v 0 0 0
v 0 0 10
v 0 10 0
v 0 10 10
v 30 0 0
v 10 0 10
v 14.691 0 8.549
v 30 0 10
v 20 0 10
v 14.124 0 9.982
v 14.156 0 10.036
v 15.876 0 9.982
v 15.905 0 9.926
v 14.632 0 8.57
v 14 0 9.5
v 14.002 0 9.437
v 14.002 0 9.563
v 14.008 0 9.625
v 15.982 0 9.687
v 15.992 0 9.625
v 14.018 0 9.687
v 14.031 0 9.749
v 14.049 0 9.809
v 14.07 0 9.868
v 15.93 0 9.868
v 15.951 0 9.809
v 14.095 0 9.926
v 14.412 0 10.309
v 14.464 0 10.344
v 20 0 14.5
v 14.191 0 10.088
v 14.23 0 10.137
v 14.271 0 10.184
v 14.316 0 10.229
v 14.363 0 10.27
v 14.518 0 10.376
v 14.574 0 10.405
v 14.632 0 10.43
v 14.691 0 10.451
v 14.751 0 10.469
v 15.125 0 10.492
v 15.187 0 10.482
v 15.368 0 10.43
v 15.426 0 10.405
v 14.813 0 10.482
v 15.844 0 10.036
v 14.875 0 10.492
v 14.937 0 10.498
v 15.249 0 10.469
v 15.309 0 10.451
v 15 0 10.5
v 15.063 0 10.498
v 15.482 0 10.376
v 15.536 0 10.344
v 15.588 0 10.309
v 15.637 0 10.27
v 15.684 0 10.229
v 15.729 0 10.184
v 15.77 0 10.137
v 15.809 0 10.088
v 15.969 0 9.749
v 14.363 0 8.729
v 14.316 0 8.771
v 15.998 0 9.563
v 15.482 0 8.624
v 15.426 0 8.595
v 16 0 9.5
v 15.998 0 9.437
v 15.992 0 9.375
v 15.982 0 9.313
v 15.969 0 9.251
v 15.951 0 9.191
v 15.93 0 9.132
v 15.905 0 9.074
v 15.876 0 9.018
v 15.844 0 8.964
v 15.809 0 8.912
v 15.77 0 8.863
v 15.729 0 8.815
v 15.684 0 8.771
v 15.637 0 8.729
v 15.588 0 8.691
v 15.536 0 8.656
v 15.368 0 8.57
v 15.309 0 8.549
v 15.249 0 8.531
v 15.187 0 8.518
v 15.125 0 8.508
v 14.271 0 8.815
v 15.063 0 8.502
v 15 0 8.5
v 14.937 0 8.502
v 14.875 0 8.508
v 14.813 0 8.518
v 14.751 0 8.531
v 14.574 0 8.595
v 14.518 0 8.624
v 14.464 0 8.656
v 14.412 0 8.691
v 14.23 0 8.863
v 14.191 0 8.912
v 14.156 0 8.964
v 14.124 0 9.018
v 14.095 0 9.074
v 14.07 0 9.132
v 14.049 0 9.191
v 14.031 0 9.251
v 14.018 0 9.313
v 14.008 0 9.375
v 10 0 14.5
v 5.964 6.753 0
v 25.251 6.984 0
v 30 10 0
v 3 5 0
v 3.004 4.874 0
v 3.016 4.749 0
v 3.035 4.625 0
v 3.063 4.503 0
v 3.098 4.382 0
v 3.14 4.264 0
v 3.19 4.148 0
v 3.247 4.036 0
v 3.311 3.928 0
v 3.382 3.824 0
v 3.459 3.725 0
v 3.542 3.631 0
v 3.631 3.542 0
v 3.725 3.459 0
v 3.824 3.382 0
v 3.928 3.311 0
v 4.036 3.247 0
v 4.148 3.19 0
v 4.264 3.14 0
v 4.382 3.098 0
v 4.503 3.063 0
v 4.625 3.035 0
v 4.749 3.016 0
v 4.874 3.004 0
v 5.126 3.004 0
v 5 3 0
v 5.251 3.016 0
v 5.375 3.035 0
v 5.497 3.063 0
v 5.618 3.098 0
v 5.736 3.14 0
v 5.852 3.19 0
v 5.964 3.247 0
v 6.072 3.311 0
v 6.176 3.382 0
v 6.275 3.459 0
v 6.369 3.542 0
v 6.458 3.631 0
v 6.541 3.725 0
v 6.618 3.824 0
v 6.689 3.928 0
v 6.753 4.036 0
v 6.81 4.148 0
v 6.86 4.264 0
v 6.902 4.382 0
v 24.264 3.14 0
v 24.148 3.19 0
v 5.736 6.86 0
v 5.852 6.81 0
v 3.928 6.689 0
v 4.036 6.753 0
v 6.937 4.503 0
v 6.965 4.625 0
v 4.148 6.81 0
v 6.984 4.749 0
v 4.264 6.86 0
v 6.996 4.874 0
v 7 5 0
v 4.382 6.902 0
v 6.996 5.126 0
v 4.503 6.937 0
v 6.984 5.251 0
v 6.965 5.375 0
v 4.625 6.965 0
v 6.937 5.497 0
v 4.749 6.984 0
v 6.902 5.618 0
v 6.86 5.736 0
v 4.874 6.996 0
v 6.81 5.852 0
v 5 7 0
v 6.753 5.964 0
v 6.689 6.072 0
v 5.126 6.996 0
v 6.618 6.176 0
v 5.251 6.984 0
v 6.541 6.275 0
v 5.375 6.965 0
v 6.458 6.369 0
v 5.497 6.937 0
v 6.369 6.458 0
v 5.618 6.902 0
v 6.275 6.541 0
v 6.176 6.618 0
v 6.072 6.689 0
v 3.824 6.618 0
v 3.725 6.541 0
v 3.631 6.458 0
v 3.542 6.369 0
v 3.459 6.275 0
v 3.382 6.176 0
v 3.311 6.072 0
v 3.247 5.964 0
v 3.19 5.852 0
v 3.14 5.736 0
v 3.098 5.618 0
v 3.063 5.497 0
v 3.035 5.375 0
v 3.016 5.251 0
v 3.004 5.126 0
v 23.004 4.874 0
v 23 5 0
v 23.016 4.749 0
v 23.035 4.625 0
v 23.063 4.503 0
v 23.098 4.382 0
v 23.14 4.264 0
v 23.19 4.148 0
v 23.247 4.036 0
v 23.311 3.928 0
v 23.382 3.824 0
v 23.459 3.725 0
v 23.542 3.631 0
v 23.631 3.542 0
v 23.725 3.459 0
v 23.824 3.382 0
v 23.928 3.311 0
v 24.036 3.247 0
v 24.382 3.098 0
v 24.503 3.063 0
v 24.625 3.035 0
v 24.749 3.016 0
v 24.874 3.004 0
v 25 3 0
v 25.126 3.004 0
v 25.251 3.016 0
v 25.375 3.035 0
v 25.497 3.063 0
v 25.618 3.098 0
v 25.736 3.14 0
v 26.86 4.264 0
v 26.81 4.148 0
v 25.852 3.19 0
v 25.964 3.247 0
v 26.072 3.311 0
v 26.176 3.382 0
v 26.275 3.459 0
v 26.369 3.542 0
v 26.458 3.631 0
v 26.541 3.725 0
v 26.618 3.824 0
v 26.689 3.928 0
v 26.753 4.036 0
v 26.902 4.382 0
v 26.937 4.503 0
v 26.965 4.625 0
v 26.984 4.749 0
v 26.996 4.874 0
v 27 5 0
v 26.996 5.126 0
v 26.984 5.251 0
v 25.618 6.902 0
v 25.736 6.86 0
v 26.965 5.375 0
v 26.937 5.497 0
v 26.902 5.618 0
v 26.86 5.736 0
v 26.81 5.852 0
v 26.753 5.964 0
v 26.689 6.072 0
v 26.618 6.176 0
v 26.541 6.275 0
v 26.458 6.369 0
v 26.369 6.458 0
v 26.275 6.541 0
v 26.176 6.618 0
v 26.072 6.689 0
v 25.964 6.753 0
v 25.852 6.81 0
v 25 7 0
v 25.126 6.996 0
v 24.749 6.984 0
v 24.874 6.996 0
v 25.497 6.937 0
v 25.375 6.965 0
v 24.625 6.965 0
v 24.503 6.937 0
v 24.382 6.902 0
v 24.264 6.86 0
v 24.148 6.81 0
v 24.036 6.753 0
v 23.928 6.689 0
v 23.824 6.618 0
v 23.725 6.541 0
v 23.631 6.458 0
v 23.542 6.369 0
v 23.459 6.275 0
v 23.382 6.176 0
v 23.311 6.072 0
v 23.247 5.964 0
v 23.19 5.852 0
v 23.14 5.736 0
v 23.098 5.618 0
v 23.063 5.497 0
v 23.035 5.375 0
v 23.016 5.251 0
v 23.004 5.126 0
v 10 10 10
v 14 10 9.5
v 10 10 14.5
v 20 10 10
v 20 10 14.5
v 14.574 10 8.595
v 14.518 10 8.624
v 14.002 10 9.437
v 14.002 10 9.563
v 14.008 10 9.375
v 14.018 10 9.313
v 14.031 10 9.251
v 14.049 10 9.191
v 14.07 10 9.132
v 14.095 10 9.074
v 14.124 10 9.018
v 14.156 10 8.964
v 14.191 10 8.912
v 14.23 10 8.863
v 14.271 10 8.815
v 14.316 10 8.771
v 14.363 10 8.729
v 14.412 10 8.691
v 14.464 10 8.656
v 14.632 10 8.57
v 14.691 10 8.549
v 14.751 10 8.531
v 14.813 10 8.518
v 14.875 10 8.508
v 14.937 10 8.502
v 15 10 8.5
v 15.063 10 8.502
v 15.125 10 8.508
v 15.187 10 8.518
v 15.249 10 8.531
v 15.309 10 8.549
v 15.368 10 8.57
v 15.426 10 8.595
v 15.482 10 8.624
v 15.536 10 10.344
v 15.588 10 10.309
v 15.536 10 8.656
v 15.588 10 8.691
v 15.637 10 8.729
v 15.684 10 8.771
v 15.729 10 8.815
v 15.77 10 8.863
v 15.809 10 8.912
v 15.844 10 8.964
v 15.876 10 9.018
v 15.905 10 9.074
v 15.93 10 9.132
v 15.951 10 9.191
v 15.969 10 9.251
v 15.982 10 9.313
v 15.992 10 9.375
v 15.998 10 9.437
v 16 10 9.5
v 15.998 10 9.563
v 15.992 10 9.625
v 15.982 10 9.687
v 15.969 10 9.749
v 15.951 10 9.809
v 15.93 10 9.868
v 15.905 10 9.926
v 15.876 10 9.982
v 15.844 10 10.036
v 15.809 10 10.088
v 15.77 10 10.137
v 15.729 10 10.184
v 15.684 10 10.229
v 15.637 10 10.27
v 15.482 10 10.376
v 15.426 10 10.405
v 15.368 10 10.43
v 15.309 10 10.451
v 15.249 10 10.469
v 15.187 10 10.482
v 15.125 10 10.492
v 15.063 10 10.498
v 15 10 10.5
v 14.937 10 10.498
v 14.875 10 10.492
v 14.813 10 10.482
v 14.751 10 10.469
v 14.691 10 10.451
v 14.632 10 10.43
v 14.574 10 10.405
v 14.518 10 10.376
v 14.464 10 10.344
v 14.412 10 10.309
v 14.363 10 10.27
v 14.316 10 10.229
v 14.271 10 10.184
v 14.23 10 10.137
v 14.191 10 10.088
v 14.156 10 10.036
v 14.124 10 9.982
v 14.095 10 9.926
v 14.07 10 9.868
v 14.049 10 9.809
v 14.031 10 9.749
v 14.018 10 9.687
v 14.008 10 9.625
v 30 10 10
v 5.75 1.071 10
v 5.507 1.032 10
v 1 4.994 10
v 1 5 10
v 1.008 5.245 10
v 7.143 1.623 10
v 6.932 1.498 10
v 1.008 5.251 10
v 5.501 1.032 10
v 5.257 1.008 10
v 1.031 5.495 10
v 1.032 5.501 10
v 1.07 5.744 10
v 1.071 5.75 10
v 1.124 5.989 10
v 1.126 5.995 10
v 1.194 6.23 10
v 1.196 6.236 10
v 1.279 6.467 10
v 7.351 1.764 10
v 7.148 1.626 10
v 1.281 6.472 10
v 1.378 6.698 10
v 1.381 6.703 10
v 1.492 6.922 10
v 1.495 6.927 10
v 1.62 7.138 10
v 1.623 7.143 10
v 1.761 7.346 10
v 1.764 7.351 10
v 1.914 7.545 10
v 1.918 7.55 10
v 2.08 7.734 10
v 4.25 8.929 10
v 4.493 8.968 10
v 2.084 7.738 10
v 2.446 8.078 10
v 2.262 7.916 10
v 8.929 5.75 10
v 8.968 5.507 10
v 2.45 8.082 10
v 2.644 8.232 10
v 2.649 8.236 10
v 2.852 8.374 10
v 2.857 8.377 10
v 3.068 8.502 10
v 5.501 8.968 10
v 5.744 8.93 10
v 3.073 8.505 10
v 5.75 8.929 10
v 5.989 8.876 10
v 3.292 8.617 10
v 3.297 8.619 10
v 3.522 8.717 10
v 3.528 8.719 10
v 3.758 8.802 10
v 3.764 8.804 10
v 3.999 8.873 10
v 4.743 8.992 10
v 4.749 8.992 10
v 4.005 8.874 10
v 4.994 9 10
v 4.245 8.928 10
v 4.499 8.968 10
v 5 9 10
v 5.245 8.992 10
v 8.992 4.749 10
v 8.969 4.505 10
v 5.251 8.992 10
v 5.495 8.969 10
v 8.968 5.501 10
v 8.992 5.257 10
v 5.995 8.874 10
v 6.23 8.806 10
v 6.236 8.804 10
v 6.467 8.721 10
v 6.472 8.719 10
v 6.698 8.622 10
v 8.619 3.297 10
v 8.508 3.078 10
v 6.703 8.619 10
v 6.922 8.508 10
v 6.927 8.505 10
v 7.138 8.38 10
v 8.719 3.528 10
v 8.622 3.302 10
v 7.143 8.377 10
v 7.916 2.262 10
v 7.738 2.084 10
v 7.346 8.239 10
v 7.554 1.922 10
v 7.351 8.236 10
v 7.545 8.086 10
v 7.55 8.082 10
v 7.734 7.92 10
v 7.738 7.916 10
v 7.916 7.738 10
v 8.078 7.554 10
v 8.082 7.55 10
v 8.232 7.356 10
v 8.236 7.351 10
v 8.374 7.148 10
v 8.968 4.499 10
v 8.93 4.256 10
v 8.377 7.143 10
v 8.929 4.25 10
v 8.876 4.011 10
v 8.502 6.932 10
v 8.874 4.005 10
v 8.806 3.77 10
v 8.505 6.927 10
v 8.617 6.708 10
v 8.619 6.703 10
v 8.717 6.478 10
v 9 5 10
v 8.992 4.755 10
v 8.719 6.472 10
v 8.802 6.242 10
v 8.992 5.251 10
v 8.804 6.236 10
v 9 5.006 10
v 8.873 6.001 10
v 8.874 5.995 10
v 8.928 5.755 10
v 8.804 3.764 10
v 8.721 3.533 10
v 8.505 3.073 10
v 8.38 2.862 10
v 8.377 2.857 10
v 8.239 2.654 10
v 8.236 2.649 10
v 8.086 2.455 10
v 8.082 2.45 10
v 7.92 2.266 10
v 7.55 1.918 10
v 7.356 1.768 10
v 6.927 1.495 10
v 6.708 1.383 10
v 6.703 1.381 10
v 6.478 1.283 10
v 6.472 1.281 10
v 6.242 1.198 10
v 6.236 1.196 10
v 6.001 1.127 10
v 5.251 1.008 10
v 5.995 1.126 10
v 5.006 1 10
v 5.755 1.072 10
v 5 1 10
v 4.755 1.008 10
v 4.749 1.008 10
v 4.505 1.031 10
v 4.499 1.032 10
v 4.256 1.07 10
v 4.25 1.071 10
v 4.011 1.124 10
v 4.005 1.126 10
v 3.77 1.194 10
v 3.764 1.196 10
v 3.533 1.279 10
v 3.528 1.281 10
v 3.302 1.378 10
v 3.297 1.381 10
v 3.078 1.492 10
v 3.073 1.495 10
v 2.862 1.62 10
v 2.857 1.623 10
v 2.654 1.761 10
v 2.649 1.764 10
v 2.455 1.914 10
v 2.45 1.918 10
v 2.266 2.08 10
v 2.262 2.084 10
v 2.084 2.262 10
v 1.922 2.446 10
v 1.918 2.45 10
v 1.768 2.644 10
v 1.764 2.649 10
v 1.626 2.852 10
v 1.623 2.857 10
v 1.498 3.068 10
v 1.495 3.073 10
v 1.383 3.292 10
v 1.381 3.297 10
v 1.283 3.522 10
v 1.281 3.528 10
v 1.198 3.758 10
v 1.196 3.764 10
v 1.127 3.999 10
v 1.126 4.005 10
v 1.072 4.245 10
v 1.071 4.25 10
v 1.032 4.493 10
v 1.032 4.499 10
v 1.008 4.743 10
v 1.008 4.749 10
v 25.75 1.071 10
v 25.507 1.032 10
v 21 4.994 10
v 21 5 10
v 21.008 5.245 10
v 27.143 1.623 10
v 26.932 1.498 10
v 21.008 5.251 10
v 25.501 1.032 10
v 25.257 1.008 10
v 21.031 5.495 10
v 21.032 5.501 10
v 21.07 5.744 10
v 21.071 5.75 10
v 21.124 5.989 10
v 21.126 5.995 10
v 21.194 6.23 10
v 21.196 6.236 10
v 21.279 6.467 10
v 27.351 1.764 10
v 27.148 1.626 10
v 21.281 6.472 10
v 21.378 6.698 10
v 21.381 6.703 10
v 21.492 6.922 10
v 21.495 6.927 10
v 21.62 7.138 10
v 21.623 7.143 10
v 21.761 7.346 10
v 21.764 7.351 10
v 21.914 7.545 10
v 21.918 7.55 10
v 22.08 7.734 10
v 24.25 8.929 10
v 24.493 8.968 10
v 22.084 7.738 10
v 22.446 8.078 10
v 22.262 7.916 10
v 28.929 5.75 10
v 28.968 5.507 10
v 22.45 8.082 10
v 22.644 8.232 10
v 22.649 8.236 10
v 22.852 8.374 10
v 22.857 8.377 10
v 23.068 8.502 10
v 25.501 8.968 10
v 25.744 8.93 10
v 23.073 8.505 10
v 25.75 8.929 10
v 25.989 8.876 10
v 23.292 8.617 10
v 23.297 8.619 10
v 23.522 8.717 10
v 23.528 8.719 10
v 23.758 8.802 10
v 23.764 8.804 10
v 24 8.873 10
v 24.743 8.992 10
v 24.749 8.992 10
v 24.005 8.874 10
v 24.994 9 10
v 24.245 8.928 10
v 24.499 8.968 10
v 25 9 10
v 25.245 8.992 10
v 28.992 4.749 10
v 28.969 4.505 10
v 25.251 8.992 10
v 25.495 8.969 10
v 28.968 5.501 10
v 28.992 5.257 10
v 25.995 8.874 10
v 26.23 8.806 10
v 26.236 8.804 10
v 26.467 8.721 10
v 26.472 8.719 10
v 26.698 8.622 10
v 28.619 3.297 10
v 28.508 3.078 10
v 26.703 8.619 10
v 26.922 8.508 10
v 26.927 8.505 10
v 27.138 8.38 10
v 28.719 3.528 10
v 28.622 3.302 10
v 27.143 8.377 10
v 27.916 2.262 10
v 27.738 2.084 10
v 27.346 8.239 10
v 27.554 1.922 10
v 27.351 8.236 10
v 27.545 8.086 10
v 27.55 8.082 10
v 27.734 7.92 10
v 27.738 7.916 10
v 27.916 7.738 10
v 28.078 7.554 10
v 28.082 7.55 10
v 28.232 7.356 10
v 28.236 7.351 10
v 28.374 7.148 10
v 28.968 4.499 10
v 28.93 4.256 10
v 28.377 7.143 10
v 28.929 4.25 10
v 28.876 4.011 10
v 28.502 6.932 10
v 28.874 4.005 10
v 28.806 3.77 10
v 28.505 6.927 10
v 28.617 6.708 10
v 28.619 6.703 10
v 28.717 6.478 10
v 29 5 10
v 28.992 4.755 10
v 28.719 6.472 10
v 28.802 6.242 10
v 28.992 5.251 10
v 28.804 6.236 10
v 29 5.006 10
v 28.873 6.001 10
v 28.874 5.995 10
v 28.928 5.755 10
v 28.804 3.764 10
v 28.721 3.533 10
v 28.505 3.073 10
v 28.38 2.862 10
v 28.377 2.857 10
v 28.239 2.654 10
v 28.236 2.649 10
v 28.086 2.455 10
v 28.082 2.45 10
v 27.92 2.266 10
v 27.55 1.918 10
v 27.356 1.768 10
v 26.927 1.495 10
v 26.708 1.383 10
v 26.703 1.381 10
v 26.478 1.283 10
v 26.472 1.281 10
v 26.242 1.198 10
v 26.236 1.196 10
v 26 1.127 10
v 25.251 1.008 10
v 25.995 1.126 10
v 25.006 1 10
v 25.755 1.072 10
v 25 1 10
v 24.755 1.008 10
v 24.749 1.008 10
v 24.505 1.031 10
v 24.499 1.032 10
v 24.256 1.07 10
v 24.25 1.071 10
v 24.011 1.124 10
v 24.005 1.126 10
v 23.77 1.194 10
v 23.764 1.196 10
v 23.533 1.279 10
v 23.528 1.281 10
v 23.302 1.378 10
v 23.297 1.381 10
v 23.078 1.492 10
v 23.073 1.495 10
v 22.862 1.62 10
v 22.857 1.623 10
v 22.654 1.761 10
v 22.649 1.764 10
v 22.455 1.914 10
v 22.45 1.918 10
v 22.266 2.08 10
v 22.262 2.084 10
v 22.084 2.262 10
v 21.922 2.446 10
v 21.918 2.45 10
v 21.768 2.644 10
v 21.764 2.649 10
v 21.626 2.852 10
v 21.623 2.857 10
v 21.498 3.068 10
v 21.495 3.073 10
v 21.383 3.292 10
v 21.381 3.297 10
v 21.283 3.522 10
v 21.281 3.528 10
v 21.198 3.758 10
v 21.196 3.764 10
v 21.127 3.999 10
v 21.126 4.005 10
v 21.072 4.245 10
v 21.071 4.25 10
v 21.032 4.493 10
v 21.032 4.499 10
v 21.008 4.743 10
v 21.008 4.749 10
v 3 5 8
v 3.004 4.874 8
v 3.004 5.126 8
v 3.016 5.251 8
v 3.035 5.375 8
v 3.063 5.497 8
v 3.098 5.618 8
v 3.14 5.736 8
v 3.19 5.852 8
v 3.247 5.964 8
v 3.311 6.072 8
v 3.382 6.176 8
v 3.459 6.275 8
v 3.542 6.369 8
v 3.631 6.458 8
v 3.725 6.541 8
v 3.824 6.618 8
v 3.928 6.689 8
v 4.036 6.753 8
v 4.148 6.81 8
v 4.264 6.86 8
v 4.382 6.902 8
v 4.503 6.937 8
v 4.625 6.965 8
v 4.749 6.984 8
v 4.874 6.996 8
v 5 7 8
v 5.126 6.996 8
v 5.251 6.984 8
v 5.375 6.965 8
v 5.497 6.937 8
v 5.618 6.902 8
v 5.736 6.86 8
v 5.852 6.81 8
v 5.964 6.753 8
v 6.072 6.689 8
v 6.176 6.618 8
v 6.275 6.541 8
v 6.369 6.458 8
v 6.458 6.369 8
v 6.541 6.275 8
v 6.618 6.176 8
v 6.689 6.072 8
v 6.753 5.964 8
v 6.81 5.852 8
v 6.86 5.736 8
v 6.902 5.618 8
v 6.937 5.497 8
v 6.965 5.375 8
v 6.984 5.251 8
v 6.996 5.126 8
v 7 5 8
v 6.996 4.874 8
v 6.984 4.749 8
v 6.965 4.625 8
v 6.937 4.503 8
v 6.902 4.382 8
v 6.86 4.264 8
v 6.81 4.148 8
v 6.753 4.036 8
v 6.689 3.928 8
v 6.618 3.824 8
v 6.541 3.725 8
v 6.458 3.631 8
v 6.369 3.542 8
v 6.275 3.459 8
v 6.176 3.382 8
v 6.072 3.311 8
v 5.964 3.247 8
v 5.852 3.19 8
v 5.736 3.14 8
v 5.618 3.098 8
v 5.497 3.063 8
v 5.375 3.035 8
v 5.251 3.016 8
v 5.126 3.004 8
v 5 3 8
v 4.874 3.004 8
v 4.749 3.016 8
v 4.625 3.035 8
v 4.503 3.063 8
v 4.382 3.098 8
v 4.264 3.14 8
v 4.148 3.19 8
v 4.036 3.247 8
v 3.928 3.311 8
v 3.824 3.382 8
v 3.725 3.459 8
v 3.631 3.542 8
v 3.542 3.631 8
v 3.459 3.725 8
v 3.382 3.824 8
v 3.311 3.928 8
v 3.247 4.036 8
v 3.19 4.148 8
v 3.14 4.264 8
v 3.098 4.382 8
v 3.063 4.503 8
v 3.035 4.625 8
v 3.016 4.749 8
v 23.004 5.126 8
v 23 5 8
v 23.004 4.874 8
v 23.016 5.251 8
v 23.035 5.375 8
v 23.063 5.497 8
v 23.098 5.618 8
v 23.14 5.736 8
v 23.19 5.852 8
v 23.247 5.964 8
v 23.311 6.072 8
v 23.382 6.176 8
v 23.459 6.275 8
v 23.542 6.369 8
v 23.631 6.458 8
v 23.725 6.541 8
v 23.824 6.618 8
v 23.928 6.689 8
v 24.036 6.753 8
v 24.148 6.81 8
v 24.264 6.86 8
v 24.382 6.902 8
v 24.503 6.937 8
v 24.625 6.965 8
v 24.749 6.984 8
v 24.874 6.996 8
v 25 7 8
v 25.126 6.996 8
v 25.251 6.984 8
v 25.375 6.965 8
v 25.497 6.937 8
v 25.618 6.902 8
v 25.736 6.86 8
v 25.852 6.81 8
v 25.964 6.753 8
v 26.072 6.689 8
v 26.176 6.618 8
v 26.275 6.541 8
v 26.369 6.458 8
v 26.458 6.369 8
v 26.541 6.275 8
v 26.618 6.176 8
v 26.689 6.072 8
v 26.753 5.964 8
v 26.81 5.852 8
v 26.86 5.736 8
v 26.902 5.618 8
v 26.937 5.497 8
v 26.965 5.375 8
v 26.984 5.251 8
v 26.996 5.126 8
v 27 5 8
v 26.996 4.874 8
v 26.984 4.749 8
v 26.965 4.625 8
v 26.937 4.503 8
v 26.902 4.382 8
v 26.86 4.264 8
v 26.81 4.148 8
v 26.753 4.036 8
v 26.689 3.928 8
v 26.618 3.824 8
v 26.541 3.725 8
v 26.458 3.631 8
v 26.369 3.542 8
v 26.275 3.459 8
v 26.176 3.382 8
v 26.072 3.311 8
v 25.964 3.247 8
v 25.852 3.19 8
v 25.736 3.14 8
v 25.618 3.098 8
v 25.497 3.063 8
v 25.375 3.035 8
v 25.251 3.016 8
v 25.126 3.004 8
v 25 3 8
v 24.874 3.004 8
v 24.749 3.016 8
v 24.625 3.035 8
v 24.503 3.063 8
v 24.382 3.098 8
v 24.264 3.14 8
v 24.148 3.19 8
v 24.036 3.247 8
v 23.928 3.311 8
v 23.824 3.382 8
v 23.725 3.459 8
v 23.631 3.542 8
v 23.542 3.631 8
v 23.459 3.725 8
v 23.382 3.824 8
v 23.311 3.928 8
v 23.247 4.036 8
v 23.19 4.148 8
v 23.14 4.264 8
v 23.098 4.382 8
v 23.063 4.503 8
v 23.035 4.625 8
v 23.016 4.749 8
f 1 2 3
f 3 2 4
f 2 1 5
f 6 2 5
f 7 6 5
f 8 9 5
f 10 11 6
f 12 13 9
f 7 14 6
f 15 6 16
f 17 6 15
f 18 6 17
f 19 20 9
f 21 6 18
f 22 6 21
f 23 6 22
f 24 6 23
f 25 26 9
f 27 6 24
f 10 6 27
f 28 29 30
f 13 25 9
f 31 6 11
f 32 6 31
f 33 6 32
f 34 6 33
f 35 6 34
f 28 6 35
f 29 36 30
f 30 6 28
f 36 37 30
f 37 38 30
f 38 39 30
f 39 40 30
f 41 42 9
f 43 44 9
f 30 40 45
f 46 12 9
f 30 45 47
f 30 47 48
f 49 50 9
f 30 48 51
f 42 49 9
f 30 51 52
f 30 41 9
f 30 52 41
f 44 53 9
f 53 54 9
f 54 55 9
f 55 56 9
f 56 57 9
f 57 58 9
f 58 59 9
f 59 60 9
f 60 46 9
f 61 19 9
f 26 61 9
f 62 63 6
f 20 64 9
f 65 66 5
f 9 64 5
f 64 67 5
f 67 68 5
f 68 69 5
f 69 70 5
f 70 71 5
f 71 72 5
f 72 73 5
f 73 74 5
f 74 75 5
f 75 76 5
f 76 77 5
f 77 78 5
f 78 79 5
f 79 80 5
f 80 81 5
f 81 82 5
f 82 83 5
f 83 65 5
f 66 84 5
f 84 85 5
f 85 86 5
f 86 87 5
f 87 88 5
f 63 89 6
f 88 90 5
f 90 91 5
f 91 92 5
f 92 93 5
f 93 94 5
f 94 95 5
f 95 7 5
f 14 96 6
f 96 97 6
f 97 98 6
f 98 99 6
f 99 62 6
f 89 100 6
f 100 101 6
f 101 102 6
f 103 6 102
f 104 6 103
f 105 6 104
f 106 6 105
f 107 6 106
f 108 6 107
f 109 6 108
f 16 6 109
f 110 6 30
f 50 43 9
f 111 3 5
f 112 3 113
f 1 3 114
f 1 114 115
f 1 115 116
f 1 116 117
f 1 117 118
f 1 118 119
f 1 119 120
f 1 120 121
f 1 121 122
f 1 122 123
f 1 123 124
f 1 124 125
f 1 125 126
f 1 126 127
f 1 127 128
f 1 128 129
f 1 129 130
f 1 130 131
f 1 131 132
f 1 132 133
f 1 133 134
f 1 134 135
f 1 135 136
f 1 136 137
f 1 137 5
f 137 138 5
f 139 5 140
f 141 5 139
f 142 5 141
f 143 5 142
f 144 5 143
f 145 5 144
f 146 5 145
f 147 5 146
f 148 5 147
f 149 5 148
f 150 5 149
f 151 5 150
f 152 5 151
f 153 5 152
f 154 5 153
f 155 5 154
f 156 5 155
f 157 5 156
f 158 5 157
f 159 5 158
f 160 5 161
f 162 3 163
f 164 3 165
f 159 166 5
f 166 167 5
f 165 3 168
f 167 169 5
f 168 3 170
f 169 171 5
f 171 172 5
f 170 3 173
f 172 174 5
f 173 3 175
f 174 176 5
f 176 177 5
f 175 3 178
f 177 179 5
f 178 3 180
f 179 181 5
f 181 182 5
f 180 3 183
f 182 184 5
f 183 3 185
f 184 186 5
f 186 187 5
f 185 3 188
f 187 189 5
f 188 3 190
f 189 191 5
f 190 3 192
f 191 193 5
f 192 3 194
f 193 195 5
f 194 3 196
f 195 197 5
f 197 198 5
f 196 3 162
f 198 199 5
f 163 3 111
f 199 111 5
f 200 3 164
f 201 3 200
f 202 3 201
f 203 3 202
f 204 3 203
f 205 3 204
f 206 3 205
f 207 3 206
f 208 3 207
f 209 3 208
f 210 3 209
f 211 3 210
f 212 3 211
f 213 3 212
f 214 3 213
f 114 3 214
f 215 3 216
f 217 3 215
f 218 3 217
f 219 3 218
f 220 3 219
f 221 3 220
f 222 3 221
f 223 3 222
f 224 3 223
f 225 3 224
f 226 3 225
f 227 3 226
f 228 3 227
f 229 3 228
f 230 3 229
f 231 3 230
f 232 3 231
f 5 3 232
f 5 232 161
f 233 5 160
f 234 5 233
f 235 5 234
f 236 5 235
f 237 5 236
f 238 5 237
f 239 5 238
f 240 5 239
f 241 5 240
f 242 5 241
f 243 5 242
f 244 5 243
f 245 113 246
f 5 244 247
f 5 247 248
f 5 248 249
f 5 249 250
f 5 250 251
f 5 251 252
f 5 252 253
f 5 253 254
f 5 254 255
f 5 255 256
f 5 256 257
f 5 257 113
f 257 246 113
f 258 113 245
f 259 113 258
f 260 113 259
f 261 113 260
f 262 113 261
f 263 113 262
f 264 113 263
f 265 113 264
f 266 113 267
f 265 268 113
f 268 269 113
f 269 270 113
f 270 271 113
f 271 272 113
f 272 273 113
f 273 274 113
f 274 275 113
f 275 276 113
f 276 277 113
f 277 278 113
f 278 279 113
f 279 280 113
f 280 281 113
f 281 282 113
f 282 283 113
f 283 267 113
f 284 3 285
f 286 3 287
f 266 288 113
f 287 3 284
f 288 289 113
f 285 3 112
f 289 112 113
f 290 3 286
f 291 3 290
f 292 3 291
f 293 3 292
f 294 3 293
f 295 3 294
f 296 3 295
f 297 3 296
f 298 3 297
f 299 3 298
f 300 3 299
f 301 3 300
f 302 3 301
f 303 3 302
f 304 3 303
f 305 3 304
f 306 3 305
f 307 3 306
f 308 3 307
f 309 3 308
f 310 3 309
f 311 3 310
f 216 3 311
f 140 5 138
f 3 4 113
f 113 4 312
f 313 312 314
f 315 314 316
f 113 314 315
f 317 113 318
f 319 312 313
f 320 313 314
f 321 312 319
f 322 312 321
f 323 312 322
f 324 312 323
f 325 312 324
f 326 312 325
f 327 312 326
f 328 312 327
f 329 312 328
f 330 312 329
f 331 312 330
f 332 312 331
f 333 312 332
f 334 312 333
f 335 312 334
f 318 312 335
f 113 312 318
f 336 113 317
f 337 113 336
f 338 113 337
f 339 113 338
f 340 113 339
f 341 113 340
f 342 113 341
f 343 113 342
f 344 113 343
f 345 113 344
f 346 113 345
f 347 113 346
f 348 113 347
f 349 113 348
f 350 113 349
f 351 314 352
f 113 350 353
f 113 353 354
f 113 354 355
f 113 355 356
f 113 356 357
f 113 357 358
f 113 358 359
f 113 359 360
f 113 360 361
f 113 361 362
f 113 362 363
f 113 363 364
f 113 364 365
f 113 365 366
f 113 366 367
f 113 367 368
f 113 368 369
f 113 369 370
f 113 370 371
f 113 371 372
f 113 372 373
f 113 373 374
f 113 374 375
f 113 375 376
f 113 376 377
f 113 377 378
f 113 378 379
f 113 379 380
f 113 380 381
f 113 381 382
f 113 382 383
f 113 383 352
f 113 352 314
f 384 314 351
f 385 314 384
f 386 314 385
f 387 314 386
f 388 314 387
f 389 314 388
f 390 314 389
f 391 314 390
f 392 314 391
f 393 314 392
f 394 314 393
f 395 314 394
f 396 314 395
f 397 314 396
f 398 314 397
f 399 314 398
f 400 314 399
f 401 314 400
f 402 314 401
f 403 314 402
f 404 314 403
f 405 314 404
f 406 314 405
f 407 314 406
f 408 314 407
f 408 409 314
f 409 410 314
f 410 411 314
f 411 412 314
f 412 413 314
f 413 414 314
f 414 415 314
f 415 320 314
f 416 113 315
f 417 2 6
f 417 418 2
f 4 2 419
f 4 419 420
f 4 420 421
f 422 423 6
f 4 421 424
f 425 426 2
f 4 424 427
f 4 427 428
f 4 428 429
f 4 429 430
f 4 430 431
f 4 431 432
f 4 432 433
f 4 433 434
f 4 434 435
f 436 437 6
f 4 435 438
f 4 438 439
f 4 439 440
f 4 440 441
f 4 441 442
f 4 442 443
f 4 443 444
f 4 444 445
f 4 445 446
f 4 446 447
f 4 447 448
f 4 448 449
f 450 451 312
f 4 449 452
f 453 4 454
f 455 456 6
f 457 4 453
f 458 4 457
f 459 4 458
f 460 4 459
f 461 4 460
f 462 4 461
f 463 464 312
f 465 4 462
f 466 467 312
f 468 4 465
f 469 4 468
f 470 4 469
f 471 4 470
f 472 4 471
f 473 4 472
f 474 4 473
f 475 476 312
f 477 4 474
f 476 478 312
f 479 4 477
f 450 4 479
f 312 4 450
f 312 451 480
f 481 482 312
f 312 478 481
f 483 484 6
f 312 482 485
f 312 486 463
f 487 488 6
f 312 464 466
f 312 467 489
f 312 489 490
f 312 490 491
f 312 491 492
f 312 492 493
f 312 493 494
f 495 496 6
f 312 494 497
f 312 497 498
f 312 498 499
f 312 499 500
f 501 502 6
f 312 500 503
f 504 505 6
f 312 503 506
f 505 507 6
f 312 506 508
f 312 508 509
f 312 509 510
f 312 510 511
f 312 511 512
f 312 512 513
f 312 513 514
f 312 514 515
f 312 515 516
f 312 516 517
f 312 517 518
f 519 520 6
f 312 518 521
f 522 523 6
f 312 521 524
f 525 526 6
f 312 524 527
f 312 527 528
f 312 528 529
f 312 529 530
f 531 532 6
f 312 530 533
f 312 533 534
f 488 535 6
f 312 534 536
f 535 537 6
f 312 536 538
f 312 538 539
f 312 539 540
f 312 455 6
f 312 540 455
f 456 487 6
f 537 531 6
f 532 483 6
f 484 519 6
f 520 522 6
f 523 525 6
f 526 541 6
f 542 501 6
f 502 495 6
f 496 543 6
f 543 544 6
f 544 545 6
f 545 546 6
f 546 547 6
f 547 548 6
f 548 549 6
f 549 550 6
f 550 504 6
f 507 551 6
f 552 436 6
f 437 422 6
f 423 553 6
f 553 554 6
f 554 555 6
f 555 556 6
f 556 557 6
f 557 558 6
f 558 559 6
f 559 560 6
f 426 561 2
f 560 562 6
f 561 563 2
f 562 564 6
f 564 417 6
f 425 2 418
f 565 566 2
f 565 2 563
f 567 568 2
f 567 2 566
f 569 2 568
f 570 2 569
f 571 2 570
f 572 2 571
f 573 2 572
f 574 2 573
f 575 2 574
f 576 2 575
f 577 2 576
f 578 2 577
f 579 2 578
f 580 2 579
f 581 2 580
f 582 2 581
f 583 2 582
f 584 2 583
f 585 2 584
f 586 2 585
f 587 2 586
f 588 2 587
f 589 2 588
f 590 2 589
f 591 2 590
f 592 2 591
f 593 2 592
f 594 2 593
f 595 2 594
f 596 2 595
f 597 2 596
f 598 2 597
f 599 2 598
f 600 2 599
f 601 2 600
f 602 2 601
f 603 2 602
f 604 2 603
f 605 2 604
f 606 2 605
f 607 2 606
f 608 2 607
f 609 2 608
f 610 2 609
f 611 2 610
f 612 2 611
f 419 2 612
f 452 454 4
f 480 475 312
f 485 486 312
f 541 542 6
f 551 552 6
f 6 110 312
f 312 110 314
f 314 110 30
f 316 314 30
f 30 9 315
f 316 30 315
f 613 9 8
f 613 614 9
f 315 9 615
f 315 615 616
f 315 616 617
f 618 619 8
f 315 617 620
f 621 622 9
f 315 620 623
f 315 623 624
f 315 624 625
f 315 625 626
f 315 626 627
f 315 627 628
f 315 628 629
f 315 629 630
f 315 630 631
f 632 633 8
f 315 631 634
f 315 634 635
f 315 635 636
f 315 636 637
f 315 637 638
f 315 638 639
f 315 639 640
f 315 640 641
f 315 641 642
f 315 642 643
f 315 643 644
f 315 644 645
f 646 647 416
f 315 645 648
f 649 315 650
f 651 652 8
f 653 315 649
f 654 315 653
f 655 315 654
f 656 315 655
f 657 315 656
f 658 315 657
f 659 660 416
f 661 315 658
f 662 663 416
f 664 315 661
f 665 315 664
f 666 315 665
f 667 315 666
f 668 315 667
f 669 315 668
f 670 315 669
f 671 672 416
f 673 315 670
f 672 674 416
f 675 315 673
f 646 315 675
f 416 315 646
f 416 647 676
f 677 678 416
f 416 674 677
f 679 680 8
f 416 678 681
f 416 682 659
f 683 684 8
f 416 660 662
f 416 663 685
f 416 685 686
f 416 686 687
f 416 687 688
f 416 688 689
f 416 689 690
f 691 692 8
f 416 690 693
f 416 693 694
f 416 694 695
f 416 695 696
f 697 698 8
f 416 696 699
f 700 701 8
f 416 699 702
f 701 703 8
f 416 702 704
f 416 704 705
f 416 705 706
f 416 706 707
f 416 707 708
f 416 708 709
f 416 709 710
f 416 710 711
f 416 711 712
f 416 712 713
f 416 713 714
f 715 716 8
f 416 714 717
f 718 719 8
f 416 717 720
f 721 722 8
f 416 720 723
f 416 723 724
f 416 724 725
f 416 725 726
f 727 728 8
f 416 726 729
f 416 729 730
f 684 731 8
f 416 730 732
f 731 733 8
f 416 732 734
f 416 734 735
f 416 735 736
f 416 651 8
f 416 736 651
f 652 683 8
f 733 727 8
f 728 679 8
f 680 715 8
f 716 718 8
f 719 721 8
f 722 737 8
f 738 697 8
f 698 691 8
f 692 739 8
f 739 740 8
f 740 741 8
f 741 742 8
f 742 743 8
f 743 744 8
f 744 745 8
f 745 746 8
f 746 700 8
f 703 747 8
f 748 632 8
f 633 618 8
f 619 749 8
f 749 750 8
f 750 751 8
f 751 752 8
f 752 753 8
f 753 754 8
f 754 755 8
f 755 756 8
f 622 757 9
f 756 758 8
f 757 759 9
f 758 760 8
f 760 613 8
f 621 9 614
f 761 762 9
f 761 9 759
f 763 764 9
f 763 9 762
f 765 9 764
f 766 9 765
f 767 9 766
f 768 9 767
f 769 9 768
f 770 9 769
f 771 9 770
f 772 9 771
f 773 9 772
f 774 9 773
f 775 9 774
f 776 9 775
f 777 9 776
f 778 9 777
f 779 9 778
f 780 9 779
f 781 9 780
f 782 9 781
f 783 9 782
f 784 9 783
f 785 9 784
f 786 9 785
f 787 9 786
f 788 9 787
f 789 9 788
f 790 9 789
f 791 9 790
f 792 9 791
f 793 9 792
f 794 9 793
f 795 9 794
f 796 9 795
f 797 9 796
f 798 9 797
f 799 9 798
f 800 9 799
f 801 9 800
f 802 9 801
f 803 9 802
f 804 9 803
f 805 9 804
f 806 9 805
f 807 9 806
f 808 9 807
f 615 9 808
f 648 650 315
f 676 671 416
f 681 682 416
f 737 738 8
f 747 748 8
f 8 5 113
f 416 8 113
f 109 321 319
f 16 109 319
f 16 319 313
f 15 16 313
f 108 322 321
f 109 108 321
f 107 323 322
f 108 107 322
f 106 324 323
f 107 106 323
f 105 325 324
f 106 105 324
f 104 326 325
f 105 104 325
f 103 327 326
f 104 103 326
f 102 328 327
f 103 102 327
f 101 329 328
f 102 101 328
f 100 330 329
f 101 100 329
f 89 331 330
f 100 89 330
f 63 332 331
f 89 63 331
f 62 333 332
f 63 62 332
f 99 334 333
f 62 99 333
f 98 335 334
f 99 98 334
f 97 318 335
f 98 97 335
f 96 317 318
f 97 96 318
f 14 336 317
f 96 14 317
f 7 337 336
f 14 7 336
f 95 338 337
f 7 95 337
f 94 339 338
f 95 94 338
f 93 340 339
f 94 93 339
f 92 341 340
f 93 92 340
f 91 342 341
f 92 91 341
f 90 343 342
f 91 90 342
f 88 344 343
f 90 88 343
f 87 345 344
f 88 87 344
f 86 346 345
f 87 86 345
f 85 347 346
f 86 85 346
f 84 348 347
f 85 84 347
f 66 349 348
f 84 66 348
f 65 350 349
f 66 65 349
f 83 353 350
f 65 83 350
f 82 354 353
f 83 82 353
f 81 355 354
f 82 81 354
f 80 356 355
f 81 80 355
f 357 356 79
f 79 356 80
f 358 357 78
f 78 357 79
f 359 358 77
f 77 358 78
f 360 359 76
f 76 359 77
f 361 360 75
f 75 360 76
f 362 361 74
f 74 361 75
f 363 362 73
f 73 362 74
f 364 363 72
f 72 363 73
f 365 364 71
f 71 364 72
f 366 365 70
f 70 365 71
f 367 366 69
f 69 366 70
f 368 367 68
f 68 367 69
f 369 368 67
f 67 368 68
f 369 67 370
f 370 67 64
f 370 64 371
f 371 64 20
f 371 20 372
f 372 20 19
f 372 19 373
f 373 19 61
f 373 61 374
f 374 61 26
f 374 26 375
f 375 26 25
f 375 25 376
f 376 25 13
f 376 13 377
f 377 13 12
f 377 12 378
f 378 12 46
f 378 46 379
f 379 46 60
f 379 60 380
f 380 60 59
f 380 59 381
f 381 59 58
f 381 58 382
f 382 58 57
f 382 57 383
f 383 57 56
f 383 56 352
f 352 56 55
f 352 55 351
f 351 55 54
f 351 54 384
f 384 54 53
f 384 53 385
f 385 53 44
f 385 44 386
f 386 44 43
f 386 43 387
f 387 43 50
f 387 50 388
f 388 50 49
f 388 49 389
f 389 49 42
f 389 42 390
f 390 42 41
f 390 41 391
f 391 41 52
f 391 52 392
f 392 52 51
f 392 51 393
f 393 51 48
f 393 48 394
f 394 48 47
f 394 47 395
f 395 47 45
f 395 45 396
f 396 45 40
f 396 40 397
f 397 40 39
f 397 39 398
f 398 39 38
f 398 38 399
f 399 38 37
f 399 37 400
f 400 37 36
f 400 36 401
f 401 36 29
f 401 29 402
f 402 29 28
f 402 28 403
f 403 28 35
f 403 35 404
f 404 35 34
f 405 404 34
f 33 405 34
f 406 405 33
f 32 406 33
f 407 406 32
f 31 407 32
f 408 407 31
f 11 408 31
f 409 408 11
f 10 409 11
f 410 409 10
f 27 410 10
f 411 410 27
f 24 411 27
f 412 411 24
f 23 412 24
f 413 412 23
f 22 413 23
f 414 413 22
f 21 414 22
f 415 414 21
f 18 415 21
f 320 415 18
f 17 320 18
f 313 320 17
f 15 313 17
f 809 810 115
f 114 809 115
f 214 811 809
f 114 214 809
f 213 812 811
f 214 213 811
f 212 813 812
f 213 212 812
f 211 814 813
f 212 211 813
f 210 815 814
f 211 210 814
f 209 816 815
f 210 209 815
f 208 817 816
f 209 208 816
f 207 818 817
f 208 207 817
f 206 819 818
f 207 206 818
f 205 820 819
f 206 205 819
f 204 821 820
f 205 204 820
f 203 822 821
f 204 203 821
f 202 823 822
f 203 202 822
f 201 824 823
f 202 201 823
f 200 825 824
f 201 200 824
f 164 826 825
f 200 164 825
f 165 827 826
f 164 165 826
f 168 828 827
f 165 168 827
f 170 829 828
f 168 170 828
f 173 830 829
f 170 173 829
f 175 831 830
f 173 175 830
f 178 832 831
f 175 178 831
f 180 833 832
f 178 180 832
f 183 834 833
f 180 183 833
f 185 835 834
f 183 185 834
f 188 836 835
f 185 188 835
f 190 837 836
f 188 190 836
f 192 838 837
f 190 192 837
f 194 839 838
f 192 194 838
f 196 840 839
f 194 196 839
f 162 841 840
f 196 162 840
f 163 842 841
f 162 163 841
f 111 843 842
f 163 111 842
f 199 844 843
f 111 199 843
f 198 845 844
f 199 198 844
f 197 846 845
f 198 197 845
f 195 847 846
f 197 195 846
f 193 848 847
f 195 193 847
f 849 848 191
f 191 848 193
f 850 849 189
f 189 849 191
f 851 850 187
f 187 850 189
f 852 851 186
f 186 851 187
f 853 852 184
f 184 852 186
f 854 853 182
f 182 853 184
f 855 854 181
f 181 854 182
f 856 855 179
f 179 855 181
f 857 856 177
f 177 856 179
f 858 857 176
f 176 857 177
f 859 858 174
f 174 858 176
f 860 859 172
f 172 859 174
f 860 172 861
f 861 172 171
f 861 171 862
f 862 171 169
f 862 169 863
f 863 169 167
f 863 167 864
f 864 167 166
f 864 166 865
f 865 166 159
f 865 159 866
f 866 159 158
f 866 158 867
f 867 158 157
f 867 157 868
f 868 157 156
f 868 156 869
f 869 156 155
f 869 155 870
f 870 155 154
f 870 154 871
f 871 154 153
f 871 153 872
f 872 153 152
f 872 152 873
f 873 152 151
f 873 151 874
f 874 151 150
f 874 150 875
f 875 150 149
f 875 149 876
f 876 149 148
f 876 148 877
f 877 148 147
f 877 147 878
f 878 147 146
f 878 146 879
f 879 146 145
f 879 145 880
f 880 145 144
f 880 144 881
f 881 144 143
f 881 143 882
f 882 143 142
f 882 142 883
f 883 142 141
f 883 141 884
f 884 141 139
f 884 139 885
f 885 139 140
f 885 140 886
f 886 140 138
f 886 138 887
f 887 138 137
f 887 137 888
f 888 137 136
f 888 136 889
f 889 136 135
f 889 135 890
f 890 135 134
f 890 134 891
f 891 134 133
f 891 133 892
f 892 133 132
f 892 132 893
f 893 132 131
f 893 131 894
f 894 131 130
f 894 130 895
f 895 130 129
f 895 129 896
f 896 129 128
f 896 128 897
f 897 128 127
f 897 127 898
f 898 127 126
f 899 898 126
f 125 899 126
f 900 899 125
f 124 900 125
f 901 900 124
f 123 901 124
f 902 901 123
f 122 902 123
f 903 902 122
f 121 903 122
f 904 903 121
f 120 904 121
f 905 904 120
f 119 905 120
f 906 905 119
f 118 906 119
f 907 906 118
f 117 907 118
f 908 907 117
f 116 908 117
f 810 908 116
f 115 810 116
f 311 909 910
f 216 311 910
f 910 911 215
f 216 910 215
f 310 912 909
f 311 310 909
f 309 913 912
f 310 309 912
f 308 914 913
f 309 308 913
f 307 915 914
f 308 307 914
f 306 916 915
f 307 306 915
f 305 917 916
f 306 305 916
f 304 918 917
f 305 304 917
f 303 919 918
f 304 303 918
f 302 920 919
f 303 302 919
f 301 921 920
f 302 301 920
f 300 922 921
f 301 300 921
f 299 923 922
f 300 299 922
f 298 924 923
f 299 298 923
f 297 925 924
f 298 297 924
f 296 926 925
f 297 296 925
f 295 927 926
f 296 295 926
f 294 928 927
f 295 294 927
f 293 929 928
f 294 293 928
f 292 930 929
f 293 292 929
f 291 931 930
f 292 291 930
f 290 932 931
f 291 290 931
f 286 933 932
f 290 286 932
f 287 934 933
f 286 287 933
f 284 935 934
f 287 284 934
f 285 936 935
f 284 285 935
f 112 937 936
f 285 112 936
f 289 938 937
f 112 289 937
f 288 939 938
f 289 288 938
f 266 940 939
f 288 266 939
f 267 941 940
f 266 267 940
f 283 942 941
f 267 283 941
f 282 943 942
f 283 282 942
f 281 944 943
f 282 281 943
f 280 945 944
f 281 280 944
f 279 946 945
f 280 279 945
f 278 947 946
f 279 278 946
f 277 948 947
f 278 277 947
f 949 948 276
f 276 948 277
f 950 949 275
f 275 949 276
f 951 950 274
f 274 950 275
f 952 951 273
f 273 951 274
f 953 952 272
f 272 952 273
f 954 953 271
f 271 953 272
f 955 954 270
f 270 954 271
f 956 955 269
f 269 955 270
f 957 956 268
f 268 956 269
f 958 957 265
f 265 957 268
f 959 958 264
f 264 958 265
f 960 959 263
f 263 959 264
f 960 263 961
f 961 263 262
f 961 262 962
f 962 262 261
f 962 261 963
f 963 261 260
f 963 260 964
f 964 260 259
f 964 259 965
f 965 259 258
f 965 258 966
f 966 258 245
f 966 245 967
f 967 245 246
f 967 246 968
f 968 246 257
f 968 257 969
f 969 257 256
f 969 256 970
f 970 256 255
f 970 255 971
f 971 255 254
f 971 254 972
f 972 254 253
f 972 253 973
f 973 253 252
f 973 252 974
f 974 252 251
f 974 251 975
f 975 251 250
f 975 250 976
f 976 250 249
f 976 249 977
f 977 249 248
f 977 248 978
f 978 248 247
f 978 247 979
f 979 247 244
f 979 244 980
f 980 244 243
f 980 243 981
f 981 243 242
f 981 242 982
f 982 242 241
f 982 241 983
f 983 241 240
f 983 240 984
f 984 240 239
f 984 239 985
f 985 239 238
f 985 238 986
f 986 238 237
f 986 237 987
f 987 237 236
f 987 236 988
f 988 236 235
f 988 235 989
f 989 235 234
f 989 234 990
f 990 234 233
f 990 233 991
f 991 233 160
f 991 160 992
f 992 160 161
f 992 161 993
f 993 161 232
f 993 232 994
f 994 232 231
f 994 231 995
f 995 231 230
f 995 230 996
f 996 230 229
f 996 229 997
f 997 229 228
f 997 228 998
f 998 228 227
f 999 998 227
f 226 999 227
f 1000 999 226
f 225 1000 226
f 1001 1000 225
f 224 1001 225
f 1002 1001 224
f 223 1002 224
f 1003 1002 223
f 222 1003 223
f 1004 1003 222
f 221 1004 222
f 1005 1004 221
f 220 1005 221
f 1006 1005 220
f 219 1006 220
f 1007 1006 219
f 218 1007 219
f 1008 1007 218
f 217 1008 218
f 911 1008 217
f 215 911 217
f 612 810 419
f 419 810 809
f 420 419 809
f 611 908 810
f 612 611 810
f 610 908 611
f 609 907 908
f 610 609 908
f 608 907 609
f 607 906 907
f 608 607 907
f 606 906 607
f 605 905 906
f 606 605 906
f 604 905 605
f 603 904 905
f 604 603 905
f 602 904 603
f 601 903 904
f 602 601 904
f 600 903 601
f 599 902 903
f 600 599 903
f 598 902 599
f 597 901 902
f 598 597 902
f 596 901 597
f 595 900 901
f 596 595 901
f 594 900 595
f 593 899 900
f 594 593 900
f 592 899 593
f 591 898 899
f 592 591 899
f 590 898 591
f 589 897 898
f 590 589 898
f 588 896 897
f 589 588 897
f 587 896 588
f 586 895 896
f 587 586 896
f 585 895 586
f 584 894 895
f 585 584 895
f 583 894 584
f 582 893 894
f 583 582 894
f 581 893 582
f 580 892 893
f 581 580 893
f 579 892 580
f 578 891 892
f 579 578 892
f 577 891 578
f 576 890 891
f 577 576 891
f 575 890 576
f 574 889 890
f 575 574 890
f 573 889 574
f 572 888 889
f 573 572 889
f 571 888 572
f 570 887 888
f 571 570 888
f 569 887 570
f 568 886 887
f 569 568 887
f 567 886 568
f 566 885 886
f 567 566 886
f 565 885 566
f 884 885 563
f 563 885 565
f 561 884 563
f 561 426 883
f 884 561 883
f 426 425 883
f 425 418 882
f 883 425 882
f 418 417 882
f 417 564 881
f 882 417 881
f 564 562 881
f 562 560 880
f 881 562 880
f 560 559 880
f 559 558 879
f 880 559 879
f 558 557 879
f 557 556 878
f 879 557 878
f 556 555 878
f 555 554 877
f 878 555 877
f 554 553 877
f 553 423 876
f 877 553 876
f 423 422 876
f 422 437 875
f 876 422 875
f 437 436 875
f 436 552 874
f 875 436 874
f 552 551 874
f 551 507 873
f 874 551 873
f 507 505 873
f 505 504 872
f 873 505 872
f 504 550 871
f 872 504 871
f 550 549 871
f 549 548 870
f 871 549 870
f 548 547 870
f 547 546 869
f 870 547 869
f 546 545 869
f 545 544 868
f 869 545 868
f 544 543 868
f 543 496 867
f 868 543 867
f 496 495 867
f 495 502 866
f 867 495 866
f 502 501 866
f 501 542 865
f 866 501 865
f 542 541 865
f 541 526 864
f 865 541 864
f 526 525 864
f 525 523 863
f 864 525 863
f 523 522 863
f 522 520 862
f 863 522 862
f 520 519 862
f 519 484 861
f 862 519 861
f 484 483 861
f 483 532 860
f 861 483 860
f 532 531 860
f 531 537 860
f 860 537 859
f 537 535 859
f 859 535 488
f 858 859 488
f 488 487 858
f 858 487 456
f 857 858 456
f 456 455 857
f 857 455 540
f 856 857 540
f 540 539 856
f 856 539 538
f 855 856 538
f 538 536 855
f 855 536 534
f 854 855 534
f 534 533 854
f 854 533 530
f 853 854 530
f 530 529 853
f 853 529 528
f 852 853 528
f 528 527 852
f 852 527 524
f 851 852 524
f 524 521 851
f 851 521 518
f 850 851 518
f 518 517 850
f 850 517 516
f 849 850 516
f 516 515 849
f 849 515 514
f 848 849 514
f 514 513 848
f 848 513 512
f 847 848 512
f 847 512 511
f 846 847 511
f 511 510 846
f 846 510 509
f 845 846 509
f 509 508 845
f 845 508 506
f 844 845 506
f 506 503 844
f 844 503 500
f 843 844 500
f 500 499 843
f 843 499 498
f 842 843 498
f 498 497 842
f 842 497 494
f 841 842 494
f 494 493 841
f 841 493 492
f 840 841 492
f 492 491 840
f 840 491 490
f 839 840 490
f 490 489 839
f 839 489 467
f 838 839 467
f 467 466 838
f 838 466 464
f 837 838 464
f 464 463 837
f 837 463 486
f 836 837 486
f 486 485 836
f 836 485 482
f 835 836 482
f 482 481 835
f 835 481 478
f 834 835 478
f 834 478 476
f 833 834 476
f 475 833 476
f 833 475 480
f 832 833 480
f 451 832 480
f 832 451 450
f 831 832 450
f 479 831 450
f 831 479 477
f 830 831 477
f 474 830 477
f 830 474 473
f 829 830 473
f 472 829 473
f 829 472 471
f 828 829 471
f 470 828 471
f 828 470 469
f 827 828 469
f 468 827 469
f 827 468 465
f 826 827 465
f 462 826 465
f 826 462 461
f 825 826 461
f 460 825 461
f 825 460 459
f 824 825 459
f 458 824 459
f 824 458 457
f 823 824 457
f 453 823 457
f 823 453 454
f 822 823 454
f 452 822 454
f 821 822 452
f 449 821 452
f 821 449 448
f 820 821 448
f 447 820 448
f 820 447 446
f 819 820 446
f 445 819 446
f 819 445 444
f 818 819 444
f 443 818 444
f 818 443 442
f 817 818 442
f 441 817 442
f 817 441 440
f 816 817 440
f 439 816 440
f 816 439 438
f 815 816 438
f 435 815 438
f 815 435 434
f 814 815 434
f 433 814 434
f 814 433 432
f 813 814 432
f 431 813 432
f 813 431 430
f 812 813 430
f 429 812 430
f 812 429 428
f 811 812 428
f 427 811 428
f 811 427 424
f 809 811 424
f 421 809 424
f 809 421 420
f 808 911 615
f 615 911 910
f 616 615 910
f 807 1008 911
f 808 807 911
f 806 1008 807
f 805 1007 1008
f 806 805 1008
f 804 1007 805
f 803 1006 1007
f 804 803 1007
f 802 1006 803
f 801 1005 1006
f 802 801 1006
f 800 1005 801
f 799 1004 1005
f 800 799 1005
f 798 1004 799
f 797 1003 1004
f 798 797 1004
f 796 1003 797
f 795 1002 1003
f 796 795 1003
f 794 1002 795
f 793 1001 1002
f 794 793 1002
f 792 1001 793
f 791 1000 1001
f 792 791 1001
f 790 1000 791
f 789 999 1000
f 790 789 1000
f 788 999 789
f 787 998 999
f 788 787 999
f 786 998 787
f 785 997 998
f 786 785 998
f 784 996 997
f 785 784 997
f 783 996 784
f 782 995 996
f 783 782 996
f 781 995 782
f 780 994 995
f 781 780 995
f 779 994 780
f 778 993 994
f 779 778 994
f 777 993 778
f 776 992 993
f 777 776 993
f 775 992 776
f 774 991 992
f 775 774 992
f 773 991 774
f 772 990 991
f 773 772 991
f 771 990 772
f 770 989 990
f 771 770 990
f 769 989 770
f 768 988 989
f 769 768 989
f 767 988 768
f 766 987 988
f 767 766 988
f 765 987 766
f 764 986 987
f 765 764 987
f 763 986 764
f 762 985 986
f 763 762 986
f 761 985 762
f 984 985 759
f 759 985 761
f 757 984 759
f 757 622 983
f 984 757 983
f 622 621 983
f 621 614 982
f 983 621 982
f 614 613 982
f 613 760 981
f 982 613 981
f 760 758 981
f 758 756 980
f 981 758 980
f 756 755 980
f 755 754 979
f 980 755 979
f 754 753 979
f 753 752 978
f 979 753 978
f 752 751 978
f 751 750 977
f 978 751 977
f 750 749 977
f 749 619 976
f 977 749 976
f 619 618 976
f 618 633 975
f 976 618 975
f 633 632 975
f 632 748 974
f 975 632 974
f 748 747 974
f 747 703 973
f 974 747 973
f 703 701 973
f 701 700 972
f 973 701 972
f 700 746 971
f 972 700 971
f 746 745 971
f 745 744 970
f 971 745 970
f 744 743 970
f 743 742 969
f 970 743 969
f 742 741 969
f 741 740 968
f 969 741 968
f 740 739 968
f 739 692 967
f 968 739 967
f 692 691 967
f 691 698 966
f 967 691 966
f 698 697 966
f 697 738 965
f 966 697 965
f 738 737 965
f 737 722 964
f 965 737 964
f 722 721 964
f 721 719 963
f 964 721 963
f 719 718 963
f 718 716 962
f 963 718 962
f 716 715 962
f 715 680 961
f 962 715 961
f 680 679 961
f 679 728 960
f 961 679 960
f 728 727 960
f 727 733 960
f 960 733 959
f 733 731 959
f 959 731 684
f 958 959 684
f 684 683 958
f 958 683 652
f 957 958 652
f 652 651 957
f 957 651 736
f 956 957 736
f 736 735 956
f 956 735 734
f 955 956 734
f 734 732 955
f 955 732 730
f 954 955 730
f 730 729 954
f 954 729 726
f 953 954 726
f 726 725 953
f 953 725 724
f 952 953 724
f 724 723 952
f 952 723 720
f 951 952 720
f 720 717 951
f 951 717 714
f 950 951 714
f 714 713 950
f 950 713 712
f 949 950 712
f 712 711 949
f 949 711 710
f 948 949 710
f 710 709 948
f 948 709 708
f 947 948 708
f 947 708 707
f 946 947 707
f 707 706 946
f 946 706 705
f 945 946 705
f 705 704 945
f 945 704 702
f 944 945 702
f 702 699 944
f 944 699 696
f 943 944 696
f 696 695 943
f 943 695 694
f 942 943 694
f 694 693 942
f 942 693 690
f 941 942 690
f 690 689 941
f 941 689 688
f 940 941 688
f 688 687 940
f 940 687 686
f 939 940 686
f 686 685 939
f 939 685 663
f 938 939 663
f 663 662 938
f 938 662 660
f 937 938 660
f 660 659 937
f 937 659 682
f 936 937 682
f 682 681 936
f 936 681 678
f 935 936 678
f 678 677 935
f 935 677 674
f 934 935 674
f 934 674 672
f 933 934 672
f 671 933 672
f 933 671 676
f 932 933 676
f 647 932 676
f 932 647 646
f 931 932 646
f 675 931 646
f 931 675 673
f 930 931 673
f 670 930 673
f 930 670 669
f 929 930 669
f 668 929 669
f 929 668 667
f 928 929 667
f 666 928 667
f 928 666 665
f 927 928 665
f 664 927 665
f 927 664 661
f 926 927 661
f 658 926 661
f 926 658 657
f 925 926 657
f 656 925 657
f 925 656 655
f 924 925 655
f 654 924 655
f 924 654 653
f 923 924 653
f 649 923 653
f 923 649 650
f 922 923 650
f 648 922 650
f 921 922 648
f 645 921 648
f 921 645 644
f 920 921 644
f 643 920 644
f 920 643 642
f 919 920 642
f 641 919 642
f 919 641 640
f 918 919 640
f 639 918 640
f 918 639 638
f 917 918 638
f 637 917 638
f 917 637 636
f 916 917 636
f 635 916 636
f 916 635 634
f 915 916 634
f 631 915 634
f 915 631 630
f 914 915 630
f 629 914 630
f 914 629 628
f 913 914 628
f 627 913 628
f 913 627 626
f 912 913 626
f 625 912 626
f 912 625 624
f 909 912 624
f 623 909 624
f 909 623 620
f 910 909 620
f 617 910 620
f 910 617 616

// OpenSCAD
difference()
{
	union()
	{
		cube([30,10,10]);
		translate([10,0,9.5])
			cube([10,10,5]);
	}
	
	translate([5,5,-0.5])
		cylinder(h=11,r=2, $fn=100);
	translate([5,5,8])
		cylinder(h=2.1,r1=2,r2=4.1, center=false, $fn=100);
	translate([25,5,-0.5])
		cylinder(h=11,r=2, $fn=100);
	translate([25,5,8])
		cylinder(h=2.1,r1=2,r2=4.1, center=false, $fn=100);
	translate([15,10.5,9.5])
	{
		rotate([90,0,0]) cylinder(h=11,r=1, $fn=100);
	}
}
